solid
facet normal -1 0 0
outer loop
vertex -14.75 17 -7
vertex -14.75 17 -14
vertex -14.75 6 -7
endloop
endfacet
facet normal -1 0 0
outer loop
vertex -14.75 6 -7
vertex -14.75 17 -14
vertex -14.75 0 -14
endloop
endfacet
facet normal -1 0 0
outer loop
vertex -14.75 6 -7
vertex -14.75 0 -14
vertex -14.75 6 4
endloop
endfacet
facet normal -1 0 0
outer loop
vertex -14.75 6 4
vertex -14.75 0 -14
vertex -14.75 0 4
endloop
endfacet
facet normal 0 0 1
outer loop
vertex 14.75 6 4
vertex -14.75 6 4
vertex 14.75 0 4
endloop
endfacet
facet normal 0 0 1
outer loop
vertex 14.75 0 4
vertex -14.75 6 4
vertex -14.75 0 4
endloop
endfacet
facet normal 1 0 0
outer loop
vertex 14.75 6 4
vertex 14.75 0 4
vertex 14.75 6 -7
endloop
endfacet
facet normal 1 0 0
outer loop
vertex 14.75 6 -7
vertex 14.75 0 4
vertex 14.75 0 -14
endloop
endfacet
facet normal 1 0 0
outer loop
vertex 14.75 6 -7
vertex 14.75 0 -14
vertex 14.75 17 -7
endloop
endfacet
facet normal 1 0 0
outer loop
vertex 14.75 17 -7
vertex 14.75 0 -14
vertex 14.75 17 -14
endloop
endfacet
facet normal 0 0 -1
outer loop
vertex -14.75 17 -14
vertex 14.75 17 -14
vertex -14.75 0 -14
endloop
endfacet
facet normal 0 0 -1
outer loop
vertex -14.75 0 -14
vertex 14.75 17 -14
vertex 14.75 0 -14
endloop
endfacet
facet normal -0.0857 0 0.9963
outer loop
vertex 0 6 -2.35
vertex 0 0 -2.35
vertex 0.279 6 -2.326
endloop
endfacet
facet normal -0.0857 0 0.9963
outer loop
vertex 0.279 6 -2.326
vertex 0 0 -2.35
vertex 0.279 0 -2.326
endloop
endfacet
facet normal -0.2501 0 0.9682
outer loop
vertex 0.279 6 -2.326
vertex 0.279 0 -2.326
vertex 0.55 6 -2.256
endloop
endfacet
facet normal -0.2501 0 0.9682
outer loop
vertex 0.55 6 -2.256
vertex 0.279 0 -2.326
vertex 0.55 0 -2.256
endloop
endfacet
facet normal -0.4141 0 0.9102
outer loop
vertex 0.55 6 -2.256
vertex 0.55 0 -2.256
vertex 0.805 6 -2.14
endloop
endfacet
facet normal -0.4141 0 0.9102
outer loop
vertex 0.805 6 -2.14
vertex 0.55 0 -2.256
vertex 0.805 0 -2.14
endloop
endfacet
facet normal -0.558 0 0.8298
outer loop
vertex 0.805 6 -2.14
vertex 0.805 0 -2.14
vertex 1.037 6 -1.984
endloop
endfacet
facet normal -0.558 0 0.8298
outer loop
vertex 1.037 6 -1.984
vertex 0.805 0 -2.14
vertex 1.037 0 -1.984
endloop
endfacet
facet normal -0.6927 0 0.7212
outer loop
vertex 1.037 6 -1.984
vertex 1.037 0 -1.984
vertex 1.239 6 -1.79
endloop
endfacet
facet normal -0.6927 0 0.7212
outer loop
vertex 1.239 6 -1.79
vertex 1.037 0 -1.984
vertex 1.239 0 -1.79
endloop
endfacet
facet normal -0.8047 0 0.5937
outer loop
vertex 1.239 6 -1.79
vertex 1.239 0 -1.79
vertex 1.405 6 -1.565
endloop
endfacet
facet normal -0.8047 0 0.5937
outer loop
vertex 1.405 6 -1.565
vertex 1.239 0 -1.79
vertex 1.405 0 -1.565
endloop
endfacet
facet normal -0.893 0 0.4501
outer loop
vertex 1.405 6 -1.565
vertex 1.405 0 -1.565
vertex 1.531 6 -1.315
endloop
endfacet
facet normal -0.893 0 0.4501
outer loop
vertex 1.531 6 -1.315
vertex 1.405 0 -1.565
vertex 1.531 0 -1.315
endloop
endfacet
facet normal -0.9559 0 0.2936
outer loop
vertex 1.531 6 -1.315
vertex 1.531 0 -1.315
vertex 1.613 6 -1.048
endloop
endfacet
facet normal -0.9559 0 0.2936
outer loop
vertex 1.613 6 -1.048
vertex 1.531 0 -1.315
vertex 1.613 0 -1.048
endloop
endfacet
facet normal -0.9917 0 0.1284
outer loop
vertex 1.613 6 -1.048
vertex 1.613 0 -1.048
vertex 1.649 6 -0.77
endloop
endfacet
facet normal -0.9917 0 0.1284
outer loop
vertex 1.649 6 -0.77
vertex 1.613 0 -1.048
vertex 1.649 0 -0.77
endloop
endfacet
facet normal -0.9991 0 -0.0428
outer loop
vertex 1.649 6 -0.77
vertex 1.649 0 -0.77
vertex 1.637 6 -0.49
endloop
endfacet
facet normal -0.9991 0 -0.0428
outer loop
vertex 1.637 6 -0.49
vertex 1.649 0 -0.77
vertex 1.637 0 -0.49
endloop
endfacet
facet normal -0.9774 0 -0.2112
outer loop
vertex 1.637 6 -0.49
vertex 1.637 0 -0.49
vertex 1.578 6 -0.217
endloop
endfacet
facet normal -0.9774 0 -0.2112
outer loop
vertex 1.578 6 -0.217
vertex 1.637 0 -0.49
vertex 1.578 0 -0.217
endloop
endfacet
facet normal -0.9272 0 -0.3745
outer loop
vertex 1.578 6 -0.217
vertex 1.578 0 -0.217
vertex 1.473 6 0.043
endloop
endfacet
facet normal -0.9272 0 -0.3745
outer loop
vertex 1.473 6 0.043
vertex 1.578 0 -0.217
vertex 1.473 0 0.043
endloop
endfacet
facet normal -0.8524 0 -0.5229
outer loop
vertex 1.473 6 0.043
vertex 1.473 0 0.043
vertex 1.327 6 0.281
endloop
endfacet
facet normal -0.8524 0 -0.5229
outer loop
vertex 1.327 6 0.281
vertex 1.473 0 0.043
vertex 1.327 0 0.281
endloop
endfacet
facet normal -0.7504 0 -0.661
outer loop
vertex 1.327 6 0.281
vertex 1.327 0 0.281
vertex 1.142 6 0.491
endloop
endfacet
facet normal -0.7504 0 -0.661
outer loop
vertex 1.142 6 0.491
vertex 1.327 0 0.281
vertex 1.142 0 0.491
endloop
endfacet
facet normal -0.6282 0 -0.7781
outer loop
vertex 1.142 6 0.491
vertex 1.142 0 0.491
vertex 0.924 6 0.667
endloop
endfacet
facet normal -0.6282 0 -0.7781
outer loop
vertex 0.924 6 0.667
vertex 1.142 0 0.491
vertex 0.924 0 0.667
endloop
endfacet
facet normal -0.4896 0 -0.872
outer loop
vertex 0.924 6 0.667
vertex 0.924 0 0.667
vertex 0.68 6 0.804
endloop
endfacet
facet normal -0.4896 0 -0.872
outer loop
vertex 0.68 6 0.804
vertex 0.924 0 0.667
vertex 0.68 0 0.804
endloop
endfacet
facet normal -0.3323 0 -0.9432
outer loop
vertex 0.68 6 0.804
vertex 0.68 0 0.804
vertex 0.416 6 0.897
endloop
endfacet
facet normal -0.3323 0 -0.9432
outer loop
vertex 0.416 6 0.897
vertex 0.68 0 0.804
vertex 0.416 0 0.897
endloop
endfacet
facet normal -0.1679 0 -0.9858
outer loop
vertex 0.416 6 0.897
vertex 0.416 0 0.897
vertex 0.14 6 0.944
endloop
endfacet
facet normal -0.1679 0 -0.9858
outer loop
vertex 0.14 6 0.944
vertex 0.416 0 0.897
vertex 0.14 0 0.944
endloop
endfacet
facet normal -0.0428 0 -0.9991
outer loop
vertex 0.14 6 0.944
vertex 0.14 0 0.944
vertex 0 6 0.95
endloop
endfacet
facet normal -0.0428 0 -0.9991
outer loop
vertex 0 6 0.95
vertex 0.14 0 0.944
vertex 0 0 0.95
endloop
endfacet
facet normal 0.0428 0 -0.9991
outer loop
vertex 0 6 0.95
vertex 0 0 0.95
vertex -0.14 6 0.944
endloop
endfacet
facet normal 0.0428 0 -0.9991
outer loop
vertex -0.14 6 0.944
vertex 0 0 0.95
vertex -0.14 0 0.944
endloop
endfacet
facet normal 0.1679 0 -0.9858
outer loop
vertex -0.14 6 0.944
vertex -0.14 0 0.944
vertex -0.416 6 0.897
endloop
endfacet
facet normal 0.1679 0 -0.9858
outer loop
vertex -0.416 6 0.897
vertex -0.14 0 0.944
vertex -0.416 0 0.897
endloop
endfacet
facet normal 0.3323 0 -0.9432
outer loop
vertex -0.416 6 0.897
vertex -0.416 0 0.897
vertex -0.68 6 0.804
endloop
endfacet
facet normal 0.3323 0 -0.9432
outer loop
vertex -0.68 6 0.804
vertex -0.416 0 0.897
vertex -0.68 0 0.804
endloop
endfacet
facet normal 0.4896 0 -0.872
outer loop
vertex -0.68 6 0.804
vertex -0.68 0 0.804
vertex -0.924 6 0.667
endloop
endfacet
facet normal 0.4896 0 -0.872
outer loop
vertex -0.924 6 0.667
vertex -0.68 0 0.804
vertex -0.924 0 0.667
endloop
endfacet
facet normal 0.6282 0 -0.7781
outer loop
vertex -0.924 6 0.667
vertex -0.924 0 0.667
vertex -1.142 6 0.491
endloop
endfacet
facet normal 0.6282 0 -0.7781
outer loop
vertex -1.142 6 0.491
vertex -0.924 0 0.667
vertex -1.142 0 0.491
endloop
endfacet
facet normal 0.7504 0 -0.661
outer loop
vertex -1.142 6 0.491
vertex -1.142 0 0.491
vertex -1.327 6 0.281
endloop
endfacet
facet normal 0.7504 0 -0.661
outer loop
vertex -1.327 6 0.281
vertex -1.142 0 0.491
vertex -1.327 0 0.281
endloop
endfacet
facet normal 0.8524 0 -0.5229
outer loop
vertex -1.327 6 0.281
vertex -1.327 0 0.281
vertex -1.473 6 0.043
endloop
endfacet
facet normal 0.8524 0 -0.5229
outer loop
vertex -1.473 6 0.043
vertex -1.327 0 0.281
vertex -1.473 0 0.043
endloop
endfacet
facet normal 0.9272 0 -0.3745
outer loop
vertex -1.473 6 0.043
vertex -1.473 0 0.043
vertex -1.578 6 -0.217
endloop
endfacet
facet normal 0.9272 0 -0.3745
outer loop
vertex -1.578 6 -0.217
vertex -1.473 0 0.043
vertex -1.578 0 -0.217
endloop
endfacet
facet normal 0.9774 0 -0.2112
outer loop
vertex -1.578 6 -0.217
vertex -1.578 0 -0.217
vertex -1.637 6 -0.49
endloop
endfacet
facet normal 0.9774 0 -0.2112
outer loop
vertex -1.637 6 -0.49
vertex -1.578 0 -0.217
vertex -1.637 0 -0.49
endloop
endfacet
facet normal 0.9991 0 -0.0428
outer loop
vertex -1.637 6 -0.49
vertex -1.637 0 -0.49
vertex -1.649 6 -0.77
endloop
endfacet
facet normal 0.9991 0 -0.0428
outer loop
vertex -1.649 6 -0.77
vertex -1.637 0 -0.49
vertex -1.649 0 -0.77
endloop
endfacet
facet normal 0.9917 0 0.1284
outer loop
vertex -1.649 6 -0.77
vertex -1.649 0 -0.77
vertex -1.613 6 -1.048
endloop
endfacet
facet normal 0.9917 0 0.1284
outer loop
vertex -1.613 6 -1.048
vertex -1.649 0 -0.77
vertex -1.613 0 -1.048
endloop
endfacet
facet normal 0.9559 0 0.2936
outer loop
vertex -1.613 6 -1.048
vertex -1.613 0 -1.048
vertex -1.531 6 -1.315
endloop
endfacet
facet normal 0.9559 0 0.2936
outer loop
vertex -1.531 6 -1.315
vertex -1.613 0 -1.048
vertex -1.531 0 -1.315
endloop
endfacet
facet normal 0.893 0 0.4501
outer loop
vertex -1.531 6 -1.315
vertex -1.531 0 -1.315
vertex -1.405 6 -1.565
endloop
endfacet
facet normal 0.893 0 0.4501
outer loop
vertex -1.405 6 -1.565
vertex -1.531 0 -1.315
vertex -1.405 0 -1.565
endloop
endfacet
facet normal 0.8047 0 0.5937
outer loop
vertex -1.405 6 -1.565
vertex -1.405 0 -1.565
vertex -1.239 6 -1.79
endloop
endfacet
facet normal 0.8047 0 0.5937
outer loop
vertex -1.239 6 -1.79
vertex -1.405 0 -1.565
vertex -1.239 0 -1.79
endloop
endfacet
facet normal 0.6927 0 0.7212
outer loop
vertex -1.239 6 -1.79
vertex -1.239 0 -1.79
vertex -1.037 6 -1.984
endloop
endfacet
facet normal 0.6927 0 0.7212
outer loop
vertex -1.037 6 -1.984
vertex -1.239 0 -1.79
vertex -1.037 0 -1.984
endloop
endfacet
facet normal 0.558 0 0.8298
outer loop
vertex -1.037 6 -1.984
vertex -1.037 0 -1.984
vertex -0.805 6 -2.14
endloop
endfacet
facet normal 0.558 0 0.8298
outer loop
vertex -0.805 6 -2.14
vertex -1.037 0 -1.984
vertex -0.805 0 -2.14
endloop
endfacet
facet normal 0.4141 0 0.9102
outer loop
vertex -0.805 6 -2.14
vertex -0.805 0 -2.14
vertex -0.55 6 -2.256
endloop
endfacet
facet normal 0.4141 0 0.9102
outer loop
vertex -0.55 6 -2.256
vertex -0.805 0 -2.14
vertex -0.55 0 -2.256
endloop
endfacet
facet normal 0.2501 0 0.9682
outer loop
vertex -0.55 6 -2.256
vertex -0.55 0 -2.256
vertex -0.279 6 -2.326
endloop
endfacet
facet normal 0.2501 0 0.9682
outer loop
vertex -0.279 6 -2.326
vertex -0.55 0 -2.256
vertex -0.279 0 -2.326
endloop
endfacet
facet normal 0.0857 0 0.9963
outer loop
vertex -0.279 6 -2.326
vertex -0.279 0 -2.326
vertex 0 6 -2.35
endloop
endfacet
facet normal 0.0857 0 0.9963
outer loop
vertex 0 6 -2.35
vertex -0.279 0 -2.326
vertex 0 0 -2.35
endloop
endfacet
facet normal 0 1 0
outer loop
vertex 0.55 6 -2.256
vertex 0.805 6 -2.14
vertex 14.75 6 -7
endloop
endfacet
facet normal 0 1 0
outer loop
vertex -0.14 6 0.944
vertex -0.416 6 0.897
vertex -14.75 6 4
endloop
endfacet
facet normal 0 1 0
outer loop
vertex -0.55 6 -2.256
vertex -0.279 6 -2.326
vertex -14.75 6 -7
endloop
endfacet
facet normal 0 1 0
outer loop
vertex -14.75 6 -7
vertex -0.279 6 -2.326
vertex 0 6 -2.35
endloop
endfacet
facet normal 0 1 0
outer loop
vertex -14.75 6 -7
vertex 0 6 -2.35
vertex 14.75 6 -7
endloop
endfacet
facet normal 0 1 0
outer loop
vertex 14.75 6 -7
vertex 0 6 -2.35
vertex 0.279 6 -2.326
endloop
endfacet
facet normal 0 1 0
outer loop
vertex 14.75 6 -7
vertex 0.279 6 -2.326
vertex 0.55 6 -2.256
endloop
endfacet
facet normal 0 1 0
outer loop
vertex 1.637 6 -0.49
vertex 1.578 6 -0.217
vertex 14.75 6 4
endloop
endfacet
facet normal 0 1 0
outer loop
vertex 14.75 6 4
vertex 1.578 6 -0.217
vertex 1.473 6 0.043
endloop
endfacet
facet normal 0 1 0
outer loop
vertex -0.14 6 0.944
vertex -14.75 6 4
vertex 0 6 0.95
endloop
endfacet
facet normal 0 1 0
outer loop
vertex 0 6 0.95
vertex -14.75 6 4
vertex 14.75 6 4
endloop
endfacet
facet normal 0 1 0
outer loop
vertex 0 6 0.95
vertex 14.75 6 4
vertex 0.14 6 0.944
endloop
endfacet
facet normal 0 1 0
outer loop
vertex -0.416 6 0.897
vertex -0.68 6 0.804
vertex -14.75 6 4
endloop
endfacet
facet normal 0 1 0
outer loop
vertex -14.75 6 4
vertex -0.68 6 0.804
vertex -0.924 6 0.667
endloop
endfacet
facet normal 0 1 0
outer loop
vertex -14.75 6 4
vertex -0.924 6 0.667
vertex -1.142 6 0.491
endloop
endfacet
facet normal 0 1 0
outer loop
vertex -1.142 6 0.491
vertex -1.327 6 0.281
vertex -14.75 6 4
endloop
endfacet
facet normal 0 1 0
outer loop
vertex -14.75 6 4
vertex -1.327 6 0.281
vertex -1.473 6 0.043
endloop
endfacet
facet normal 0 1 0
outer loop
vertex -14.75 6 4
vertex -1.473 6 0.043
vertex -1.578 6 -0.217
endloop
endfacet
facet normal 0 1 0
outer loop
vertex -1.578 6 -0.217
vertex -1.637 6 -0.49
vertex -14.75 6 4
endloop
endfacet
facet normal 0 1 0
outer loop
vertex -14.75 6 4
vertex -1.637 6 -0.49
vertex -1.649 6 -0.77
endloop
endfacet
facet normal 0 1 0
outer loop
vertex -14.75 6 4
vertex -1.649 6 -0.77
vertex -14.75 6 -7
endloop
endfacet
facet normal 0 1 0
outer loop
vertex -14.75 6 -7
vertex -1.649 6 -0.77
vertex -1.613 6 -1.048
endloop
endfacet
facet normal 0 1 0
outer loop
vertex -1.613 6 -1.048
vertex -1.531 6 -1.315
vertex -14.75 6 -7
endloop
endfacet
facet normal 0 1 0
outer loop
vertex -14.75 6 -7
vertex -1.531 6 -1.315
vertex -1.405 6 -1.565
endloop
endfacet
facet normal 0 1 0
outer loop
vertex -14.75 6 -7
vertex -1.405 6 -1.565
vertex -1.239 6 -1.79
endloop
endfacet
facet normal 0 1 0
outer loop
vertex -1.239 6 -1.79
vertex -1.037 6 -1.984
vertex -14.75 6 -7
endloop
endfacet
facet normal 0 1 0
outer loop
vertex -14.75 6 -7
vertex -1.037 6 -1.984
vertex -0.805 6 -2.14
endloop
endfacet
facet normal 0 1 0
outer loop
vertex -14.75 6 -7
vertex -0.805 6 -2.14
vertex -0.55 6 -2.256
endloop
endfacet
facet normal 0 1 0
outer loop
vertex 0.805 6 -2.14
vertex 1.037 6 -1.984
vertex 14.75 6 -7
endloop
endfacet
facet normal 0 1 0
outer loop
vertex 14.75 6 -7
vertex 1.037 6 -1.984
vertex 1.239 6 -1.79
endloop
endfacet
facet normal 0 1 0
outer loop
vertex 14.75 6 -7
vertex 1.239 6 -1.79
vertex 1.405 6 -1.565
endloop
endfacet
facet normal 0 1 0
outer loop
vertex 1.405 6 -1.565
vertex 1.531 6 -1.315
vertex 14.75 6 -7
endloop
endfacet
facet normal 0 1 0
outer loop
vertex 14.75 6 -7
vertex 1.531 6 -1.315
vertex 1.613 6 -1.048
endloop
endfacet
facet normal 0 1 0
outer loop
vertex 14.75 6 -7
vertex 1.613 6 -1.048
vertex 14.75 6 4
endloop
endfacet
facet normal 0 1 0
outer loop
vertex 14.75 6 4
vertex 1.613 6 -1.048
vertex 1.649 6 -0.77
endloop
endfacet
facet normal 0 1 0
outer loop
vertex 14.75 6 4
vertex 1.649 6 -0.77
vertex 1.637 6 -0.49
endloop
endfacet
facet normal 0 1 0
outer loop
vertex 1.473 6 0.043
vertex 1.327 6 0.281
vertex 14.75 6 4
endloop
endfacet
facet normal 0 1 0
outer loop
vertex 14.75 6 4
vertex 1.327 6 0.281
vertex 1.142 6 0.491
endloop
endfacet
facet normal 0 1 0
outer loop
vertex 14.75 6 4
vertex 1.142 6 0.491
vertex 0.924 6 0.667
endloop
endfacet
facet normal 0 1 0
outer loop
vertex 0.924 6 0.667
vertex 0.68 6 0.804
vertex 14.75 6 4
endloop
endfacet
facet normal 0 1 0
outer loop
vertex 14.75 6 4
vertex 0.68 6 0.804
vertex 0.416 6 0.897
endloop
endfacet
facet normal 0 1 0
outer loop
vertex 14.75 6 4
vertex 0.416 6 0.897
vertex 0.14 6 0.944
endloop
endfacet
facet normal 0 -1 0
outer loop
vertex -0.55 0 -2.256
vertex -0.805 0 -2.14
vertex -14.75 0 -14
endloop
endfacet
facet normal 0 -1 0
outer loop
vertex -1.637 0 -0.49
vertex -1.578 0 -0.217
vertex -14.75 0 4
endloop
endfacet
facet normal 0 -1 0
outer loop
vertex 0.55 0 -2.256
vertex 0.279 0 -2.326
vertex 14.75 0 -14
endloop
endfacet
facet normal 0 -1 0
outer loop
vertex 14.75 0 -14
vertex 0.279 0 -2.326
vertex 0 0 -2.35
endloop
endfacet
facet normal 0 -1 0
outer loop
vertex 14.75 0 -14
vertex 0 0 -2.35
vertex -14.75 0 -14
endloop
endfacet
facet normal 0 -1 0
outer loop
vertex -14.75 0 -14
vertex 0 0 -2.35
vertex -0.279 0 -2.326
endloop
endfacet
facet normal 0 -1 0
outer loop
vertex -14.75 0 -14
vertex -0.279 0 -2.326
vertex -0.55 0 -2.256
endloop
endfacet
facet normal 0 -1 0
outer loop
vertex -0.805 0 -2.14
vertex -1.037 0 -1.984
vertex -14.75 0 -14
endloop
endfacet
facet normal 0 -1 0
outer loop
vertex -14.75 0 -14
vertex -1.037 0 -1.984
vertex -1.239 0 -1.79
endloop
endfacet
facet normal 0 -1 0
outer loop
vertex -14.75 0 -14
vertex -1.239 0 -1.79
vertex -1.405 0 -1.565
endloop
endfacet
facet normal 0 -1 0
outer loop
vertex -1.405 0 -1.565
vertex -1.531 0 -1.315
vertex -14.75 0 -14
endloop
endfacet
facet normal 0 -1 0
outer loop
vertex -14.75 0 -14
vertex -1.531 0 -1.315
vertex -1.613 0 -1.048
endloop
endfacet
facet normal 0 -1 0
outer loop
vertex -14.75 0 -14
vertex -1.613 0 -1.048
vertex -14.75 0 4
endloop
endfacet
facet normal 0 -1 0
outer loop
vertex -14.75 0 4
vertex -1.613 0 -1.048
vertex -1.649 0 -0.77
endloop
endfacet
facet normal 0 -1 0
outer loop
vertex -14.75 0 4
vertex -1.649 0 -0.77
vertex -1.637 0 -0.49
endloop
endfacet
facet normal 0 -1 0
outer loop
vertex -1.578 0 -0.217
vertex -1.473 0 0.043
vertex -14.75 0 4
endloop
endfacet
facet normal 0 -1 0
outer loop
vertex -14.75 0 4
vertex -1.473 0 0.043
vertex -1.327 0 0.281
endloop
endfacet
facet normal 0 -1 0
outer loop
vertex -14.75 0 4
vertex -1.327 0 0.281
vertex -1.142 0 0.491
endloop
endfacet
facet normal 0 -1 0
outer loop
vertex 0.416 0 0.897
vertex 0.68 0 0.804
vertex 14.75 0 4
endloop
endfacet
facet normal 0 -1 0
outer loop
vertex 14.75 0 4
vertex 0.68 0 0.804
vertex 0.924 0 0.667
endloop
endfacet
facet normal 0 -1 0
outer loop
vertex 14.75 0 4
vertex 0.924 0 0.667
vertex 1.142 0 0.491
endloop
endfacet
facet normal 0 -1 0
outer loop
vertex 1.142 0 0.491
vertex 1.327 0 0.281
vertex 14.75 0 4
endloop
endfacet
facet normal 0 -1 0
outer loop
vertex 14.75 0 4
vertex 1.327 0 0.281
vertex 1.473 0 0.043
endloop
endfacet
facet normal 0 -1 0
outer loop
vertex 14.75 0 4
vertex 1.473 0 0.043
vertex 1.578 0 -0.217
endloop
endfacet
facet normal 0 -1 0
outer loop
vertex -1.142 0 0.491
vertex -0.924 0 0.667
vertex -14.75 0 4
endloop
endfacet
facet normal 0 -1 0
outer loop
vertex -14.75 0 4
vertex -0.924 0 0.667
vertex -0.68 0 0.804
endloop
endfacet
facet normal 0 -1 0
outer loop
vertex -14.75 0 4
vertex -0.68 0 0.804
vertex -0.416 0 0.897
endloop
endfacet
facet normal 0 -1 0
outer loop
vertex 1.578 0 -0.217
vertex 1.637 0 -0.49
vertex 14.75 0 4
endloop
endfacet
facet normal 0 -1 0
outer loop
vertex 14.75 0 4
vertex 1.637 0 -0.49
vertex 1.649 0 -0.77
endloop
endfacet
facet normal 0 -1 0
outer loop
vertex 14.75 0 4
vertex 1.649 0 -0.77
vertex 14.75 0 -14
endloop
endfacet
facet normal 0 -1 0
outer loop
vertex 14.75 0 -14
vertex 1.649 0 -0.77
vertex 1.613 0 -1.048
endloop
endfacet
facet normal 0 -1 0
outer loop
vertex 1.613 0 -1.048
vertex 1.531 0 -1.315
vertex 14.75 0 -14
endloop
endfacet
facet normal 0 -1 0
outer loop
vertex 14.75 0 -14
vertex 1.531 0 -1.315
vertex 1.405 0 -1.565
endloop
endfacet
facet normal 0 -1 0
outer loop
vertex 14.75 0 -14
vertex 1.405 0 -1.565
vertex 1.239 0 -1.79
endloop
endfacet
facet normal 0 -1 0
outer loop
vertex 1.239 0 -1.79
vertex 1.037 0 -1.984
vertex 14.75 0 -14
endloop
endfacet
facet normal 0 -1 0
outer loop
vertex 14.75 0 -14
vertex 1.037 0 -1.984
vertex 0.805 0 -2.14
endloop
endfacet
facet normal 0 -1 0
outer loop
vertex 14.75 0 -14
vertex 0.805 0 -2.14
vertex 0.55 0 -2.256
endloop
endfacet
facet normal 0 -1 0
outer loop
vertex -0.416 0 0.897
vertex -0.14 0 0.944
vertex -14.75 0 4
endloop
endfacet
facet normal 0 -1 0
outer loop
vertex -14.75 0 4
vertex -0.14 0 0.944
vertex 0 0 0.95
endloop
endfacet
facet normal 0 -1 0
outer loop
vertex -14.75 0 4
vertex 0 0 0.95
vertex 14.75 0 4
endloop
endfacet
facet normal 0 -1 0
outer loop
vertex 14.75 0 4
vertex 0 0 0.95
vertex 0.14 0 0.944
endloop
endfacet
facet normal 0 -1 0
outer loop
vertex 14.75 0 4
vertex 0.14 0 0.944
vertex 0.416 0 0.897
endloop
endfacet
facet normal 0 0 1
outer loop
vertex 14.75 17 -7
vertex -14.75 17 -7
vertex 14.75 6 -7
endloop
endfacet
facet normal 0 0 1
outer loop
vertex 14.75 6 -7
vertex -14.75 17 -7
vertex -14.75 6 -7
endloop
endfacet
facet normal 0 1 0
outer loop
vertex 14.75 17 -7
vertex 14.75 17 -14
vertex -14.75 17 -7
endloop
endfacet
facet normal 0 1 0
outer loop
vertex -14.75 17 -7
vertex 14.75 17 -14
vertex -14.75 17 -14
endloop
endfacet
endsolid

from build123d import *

# Parameters (mm, degrees)
SKETCH1_W           = 29.5
SKETCH1_H           = 10
SKETCH1_H_2         = 8
SKETCH1_R           = 1.65
BOSS_EXTRUDE1_DEPTH = 6
SKETCH3_W           = 29.5
SKETCH3_H           = 7
BOSS_EXTRUDE3_DEPTH = 11


with BuildPart() as part:
    # Sketch1 → Boss-Extrude1 (new body)
    # profile 1 of 2: a face of its own
    with BuildSketch(Plane(origin=(0, 0, 0), x_dir=(1, 0, 0), z_dir=(0, 1, 0))):
        with Locations((0, 9)):
            Rectangle(SKETCH1_W, SKETCH1_H)
    # profile 2 of 2: a face of its own
    with BuildSketch(Plane(origin=(0, 0, 0), x_dir=(1, 0, 0), z_dir=(0, 1, 0))):
        Rectangle(SKETCH1_W, SKETCH1_H_2)
        with Locations(Location((0, 0.7, 0), (0, 0, 270))):
            Circle(SKETCH1_R, mode=Mode.SUBTRACT)
    extrude(amount=BOSS_EXTRUDE1_DEPTH)

    # Sketch3 → Boss-Extrude3 (add)
    with BuildSketch(Plane(origin=(0, 6, 0), x_dir=(1, 0, 0), z_dir=(0, 1, 0))):
        with Locations((0, 10.5)):
            Rectangle(SKETCH3_W, SKETCH3_H)
    extrude(amount=BOSS_EXTRUDE3_DEPTH)


solid = part.part
